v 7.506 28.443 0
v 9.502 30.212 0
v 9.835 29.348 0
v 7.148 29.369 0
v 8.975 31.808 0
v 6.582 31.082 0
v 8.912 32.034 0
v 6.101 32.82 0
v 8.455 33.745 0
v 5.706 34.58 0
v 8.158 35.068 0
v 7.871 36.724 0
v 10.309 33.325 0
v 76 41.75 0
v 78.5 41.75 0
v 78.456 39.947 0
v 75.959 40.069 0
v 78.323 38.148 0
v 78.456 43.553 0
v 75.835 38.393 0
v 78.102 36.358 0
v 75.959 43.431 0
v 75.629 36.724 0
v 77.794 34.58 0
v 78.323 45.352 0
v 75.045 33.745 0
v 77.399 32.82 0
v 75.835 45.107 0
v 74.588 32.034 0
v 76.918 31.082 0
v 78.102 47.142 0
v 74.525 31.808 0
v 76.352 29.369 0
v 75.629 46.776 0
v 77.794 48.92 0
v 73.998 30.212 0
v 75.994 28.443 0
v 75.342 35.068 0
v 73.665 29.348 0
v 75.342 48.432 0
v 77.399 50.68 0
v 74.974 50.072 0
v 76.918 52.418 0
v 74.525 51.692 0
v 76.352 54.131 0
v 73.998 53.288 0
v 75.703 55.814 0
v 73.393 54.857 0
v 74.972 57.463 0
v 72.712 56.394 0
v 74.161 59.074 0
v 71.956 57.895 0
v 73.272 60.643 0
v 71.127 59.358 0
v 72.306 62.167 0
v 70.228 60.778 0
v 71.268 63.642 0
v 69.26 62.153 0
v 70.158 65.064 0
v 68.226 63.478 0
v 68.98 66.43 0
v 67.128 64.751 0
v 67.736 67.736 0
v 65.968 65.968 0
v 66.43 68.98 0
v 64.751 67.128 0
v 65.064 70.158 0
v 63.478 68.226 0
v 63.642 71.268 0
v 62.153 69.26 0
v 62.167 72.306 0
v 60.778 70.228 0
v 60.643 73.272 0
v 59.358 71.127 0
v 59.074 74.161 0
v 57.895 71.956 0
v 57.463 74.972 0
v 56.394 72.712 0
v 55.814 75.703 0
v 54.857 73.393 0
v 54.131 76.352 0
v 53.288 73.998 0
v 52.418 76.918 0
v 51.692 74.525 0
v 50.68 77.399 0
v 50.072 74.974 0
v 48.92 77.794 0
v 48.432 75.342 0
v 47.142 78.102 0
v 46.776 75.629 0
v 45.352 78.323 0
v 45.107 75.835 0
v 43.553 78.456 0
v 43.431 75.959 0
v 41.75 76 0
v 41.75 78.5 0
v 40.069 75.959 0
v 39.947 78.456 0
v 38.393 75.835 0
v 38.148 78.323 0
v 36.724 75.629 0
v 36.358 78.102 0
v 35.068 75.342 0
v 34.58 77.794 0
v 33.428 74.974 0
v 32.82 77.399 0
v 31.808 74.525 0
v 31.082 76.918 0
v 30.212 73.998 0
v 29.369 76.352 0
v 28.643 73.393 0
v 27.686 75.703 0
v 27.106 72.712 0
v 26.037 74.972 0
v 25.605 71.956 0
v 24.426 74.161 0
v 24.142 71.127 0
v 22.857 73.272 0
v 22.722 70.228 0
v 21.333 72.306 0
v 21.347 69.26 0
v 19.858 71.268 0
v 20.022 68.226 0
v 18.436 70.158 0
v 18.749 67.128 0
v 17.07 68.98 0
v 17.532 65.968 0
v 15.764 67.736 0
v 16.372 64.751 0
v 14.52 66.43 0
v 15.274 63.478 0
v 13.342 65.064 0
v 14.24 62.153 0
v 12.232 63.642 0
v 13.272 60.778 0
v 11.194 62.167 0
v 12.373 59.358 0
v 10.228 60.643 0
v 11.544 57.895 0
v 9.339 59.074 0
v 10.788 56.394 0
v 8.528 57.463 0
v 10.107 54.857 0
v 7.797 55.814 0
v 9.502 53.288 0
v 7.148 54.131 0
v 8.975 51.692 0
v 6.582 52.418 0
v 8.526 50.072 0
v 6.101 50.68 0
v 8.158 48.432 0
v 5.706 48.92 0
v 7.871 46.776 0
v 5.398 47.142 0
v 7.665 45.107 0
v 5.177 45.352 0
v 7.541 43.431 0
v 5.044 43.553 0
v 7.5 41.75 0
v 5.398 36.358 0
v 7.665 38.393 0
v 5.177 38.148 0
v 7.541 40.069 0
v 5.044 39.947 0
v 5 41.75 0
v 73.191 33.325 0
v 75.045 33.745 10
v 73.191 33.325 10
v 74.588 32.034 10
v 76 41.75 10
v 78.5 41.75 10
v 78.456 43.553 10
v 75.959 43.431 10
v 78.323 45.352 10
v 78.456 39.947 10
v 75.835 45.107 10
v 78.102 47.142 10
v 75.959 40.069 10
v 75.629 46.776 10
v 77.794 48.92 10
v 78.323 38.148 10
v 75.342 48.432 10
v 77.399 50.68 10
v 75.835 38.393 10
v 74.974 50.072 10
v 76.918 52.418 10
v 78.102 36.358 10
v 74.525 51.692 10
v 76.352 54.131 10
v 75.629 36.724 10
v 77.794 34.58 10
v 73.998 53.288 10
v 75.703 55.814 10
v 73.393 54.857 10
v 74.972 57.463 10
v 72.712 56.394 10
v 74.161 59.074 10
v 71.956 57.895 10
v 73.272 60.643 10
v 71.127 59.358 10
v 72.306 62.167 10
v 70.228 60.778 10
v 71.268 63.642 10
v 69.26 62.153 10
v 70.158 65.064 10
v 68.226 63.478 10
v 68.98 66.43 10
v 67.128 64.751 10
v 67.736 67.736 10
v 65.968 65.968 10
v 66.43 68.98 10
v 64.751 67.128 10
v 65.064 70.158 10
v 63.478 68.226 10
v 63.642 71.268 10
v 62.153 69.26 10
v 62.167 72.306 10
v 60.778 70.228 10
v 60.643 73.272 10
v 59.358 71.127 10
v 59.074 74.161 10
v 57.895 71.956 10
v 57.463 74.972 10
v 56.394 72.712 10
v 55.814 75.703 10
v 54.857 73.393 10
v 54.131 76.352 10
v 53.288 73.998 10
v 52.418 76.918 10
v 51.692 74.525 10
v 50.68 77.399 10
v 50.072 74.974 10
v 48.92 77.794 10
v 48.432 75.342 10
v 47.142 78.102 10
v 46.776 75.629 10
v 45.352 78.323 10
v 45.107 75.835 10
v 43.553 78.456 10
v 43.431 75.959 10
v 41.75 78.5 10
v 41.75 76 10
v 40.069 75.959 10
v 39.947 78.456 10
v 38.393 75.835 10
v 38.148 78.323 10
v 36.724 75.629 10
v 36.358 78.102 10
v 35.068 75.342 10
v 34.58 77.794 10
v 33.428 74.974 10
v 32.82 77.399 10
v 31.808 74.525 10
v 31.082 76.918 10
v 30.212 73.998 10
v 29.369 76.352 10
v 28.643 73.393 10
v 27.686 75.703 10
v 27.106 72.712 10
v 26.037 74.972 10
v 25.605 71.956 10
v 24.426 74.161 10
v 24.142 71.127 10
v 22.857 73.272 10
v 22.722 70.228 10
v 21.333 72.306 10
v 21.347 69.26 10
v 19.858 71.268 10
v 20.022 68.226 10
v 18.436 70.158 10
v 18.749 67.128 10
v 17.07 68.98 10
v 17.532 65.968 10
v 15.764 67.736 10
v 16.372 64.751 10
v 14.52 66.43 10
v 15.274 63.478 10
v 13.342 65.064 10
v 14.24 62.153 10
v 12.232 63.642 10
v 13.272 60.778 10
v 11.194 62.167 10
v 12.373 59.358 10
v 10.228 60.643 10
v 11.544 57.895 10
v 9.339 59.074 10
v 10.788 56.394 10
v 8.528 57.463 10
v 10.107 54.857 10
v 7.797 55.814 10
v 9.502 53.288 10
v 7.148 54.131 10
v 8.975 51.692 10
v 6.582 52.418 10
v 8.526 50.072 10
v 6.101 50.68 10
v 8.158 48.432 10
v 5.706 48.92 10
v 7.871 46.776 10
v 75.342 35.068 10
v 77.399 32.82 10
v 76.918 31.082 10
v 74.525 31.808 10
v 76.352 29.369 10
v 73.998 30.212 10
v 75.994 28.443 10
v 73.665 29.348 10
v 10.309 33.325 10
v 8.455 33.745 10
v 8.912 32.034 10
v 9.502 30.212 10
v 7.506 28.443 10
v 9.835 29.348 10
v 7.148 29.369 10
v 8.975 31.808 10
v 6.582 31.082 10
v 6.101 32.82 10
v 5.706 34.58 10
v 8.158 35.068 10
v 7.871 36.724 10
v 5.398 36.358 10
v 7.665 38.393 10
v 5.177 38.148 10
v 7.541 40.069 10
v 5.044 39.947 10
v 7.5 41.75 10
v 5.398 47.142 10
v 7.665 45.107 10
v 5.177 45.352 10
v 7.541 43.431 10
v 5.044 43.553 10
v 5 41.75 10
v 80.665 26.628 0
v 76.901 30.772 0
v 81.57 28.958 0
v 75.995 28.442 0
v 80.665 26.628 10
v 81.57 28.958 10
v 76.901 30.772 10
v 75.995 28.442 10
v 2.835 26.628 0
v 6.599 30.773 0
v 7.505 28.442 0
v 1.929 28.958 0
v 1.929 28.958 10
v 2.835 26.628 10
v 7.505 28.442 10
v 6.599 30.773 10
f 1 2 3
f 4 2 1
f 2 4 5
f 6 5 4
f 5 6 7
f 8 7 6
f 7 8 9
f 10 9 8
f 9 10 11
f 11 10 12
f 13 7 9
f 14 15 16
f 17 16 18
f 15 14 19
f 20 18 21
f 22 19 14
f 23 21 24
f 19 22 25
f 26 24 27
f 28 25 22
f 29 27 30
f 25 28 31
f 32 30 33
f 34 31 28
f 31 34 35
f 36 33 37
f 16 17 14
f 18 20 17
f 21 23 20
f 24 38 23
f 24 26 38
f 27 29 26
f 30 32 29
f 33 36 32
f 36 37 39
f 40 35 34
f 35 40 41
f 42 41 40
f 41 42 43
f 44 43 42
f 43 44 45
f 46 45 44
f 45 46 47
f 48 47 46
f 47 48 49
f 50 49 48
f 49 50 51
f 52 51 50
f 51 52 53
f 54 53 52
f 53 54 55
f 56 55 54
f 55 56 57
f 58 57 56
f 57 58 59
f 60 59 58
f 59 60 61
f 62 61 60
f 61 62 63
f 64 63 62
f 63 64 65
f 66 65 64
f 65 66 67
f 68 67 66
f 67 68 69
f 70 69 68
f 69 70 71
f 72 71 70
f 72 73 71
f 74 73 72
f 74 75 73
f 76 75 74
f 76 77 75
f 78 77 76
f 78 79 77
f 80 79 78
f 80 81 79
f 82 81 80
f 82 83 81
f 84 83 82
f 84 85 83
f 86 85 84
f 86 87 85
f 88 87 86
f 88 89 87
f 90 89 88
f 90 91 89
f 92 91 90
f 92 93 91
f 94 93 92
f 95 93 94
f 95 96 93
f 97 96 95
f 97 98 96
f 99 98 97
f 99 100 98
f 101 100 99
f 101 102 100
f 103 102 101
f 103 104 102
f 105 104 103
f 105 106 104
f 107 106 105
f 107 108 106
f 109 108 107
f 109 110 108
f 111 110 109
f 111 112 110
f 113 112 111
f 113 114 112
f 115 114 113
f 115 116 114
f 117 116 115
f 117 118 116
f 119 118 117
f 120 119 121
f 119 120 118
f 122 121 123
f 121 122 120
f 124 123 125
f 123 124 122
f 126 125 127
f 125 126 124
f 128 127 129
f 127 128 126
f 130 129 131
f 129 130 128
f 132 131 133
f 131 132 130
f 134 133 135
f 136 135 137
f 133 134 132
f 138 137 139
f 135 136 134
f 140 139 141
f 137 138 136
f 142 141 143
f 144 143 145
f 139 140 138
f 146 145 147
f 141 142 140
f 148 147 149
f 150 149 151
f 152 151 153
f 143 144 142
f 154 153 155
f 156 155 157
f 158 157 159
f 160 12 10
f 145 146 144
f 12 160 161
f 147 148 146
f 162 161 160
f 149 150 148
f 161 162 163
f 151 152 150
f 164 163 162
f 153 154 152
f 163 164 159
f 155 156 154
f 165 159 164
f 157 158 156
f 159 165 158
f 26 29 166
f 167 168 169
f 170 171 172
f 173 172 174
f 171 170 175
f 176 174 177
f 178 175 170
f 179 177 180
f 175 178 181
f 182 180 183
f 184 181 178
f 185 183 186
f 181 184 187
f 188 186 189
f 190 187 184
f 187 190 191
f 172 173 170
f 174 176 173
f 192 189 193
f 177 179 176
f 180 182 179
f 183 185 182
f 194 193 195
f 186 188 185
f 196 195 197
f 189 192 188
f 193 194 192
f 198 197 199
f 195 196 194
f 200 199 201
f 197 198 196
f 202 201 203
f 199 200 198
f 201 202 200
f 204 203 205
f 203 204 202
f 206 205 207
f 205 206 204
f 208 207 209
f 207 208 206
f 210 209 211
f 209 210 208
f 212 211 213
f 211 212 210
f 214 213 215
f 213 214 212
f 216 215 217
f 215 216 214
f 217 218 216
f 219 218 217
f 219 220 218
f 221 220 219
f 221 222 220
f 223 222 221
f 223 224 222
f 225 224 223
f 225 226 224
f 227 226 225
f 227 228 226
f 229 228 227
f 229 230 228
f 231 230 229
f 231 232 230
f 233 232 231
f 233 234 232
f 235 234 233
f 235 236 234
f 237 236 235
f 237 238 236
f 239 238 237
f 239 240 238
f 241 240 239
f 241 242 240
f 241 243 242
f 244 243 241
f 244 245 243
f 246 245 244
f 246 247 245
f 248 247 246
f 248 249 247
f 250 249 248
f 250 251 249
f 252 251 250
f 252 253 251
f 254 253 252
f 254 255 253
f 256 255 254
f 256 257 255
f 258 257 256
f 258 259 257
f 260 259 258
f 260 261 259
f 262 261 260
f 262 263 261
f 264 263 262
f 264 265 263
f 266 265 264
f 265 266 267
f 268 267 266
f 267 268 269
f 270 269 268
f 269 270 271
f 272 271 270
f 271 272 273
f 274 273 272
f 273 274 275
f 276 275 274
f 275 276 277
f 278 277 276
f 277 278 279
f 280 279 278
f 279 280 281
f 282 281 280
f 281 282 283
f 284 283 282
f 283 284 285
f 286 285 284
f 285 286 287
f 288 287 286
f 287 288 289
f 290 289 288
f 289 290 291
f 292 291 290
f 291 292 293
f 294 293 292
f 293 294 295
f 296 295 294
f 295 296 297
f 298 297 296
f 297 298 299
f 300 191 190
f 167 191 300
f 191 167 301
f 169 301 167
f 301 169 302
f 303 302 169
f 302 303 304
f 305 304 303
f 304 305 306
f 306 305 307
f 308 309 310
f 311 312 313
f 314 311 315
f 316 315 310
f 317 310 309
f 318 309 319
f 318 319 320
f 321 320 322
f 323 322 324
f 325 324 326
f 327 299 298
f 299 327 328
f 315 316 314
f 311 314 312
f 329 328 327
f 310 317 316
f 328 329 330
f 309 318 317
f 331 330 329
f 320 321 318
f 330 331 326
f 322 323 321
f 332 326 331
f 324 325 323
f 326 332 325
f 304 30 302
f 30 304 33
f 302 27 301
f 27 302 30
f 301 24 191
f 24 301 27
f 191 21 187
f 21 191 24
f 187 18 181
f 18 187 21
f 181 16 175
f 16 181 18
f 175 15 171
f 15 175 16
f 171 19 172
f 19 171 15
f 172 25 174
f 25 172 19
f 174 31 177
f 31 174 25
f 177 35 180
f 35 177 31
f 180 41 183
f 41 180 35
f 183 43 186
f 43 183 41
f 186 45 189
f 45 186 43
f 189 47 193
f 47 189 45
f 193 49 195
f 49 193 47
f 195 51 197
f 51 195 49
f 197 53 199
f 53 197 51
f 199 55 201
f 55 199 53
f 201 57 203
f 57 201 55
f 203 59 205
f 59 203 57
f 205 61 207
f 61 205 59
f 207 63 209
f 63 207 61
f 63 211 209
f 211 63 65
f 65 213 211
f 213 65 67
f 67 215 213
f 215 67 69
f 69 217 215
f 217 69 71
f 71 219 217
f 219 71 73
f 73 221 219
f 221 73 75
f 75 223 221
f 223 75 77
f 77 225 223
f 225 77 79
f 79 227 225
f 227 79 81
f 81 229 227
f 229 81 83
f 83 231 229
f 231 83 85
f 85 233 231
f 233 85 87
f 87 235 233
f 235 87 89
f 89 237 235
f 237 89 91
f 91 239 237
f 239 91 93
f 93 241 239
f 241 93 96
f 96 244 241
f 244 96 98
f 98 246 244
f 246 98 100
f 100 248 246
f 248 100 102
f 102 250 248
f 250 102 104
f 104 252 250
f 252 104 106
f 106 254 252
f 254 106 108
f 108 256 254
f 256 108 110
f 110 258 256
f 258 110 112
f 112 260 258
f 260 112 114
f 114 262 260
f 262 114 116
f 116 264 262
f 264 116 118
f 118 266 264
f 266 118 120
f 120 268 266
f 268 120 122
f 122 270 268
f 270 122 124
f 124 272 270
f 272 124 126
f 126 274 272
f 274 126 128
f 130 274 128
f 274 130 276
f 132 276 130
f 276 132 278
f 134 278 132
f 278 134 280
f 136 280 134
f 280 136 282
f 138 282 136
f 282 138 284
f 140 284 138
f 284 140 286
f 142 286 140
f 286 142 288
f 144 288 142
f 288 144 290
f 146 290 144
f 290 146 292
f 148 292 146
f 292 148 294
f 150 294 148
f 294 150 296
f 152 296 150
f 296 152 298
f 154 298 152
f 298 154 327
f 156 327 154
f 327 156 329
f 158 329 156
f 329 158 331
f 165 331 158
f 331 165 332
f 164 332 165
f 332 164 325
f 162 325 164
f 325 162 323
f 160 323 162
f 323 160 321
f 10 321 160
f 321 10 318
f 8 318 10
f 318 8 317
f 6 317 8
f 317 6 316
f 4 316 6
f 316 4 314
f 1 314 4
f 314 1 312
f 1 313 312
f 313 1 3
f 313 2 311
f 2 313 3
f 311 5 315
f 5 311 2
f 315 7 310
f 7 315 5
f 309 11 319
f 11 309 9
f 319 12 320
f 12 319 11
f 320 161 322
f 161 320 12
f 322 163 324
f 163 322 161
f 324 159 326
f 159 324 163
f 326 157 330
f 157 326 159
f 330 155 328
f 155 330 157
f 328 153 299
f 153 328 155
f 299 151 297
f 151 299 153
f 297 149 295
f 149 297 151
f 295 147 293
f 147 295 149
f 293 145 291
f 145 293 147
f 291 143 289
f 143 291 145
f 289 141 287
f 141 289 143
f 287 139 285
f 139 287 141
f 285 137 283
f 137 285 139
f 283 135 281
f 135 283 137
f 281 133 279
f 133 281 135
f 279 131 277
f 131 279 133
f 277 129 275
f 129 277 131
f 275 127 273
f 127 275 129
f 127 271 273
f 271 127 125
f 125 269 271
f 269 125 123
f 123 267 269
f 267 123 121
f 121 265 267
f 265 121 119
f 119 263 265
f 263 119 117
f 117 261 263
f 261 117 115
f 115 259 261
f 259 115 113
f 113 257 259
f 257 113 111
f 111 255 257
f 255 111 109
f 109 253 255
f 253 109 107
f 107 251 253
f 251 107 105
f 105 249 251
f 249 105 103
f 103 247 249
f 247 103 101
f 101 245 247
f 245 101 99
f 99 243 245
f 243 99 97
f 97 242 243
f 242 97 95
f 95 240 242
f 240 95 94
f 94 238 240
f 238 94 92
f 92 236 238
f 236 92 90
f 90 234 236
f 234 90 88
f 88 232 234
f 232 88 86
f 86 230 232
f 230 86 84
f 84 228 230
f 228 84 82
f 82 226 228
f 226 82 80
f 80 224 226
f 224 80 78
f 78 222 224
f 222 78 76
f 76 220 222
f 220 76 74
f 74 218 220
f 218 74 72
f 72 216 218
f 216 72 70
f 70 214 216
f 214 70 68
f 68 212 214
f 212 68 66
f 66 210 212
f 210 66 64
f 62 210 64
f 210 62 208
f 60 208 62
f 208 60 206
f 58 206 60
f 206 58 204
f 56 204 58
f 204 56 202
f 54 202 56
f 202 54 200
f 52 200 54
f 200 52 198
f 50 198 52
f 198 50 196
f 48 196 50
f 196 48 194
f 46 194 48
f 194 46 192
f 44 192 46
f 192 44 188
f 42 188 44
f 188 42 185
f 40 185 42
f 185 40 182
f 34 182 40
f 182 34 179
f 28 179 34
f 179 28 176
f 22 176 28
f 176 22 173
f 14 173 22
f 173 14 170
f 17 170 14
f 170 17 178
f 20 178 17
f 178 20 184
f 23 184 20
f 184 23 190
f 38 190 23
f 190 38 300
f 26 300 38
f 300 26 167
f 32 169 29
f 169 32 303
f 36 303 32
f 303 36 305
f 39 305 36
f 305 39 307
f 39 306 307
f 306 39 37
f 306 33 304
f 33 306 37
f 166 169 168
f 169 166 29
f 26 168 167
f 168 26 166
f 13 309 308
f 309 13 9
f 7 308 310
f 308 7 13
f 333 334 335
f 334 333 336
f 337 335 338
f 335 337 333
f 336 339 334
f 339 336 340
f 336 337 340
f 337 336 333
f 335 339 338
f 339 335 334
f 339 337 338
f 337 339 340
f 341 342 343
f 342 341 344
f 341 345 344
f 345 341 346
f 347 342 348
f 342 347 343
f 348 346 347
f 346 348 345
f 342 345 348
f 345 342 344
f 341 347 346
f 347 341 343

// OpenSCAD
// Generated by scadwright. Do not hand-edit —
// edit the Python source and regenerate.

$fn = 128;

translate([41.75, 41.75, -14.439]) {
    // S2ApertureCover
    //  barrel_od         = 68.1  (input)
    //  cover_axial       = 10  (input)
    //  groove_offset_deg = 15  (input)
    //  ridge_base        = 1.8  (input)
    //  ridge_height      = 1.5  (input)
    //  z_center          = 19.439  (input)
    //  end_extension     = 4  (default)
    //  id_clearance      = 0.2  (default)
    //  tab_radial        = 5  (default)
    //  tab_thk           = 2.5  (default)
    //  wall_thk          = 2.5  (default)
    //  id                = barrel_od + 2 * id_clearance = 68.5
    //  od                = id + 2 * wall_thk = 73.5
    //  cover_z_bot       = z_center - cover_axial / 2 = 14.439
    union() {
        translate([0, 0, 14.439]) {
            linear_extrude(height=10, center=false) {
                difference() {
                    // Sector
                    //  angles = [-21.2363, 201.236]  (input)
                    //  r      = 36.75  (input)
                    intersection() {
                        circle(r=36.75);
                        polygon(points=[[0, 0], [68.509, -26.6228], [44.3141, 58.6389], [-44.3141, 58.6389], [-68.509, -26.6228]]);
                    }
                    circle(r=34.25);
                }
            }
        }
        rotate([0, 0, -15]) {
            translate([0, 0, 14.439]) {
                linear_extrude(height=10, center=false) {
                    polygon(points=[[34.26, -0.9], [34.26, 0.9], [32.55, 0]]);
                }
            }
        }
        rotate([0, 0, 195]) {
            translate([0, 0, 14.439]) {
                linear_extrude(height=10, center=false) {
                    polygon(points=[[34.26, -0.9], [34.26, 0.9], [32.55, 0]]);
                }
            }
        }
        rotate([0, 0, -21.2363]) {
            translate([0, 0, 14.439]) {
                linear_extrude(height=10, center=false) {
                    polygon(points=[[36.74, 0], [41.75, 0], [41.75, 2.5], [36.74, 2.5]]);
                }
            }
        }
        rotate([0, 0, 201.236]) {
            translate([0, 0, 14.439]) {
                linear_extrude(height=10, center=false) {
                    polygon(points=[[36.74, -2.5], [41.75, -2.5], [41.75, 0], [36.74, 0]]);
                }
            }
        }
    }
}
